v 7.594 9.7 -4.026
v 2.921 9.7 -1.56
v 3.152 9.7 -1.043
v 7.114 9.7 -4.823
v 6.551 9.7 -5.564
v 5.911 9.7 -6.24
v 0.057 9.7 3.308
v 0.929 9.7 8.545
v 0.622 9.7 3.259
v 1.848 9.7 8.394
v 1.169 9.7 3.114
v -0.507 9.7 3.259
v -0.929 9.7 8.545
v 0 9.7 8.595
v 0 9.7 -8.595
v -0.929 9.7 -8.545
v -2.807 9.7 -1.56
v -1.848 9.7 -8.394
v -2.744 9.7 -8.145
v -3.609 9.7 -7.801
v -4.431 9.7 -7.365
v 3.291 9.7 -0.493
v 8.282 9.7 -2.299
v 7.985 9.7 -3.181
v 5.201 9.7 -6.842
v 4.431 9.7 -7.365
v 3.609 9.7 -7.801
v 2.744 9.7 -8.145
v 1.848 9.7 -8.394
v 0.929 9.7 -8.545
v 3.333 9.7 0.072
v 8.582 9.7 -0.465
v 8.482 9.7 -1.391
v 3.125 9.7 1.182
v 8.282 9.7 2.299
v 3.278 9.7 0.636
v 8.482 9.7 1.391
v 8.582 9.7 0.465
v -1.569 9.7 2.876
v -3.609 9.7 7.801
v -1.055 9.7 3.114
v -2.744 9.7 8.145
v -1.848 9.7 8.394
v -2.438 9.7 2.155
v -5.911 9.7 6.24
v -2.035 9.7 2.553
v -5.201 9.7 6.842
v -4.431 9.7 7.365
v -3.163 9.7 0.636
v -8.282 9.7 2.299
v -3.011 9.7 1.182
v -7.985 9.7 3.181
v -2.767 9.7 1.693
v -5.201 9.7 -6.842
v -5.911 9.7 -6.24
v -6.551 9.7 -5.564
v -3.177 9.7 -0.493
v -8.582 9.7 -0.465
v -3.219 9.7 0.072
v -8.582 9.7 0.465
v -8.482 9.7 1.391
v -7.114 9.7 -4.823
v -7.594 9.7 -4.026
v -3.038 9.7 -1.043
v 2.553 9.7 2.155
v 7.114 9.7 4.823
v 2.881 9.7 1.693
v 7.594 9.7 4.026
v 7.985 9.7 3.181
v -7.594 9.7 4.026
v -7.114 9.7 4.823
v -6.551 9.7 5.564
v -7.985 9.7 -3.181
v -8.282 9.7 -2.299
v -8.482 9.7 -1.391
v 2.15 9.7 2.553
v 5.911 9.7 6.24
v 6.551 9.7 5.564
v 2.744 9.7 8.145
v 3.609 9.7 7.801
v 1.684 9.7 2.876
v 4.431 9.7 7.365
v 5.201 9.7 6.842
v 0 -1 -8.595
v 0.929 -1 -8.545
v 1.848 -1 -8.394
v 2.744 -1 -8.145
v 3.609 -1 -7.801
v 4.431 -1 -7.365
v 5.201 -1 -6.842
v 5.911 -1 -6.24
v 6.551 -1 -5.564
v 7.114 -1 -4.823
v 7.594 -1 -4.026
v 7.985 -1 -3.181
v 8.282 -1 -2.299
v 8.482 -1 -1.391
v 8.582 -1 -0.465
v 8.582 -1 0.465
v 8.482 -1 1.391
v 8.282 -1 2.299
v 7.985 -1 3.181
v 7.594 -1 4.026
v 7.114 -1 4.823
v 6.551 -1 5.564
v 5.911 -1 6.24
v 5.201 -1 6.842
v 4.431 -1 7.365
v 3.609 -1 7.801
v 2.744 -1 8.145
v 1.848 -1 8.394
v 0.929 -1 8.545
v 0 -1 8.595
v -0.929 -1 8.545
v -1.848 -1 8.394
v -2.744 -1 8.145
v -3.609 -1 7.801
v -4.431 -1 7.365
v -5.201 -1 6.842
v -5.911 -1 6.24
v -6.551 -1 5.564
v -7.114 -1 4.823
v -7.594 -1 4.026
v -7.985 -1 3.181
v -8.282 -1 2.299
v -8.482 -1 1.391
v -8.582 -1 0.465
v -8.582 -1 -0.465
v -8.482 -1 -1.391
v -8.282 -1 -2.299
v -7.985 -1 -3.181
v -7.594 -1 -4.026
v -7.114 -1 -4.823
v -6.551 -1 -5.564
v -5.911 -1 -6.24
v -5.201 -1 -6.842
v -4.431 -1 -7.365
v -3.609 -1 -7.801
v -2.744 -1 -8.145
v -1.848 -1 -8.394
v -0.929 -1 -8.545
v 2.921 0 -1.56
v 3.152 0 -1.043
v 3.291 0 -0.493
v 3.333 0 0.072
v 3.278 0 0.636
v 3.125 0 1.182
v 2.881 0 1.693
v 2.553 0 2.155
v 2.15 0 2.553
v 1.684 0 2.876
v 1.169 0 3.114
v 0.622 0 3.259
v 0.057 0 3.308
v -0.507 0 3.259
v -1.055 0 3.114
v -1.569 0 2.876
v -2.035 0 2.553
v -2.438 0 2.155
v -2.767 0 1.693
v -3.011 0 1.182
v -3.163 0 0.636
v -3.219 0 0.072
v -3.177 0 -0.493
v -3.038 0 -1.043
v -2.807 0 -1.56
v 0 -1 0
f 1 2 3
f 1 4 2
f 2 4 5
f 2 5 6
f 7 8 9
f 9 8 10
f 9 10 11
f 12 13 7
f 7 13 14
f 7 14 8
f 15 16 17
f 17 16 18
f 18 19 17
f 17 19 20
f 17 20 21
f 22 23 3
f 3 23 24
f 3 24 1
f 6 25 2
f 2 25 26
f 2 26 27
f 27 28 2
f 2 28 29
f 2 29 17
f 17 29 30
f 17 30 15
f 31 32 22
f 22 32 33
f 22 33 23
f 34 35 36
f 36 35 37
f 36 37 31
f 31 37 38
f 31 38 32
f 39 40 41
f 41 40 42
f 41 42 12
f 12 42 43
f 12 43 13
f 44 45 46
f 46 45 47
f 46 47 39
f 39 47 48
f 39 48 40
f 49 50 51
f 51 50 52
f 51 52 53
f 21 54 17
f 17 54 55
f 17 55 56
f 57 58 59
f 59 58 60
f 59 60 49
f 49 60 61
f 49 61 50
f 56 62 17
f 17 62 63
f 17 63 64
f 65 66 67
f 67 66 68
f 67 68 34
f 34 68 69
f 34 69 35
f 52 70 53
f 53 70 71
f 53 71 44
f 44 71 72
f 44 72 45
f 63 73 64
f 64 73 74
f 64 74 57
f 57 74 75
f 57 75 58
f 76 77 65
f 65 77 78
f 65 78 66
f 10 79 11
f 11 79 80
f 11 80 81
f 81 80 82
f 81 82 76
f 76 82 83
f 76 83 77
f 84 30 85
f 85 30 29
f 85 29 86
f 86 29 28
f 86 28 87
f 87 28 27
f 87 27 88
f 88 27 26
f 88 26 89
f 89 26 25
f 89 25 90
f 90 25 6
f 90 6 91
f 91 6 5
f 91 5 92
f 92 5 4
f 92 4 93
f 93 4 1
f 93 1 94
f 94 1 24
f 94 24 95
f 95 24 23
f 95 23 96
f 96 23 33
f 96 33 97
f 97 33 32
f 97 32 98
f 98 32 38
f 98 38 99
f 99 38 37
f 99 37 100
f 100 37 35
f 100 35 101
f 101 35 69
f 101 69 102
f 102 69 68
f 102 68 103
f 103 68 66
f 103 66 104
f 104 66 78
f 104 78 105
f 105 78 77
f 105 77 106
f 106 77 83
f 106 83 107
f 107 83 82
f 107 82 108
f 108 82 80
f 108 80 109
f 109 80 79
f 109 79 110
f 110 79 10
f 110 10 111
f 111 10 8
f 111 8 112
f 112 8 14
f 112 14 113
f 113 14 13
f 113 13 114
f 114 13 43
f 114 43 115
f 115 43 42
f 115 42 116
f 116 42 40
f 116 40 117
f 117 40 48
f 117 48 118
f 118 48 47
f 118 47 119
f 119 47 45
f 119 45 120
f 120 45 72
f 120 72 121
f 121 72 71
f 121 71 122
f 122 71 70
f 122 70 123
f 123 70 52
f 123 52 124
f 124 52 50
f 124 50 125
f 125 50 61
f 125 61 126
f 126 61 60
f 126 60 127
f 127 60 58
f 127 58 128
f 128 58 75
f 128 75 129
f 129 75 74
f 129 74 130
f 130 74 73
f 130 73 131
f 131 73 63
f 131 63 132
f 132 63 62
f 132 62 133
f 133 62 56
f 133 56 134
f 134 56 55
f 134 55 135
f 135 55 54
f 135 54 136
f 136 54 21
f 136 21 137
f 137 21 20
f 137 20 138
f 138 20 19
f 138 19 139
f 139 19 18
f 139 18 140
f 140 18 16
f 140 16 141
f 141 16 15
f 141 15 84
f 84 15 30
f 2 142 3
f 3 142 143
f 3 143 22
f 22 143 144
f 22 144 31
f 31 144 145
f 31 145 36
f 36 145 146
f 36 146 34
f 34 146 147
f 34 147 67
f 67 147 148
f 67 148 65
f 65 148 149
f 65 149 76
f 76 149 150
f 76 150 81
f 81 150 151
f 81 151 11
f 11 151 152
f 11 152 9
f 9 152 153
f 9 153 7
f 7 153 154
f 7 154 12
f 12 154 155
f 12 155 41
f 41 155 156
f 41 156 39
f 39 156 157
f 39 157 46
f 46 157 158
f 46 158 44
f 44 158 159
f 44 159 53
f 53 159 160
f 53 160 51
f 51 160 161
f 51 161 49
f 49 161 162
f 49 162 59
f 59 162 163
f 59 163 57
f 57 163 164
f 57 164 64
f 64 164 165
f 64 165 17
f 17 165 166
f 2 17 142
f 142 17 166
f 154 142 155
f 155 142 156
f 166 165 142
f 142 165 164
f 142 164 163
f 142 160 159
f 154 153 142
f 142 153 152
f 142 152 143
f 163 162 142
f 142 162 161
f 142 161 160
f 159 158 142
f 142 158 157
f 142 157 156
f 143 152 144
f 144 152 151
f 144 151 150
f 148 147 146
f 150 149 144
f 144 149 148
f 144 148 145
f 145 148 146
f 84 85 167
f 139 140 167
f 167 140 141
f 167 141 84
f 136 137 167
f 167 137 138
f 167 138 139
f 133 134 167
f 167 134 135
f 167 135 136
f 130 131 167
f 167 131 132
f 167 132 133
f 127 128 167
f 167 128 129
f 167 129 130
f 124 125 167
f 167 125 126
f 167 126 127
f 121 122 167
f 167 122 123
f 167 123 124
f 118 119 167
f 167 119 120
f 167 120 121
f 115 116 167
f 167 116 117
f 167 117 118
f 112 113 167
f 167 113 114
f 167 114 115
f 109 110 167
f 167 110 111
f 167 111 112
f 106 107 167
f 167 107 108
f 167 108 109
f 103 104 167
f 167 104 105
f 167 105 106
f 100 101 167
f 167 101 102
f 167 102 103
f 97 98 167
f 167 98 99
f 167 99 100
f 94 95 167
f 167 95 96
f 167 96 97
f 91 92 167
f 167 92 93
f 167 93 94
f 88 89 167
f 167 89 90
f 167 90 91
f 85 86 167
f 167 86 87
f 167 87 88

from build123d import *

# Parameters (mm, degrees)
SKETCH1_R           = 8.595
BOSS_EXTRUDE1_DEPTH = 9.7
BOSS_EXTRUDE3_START = 1
SKETCH2_R           = 8.595
BOSS_EXTRUDE3_DEPTH = 1


with BuildPart() as part:
    # Sketch1 → Boss-Extrude1 (new body)
    with BuildSketch(Plane(origin=(0, 0, 0), x_dir=(1, 0, 0), z_dir=(0, 1, 0))):
        with Locations(Location((0, 0, 0), (0, 0, 270))):
            Circle(SKETCH1_R)
        with BuildLine():
            Line((2.921067116, 1.559875967), (-2.806515464, 1.559875967))
            ThreePointArc((-2.806515464, 1.559875967), (0.057275826, -3.308241049), (2.921067116, 1.559875967))
        make_face(mode=Mode.SUBTRACT)
    extrude(amount=BOSS_EXTRUDE1_DEPTH)

    # Sketch2 → Boss-Extrude3 (add)
    with BuildSketch(Plane.XZ.offset(BOSS_EXTRUDE3_START)):
        with Locations(Location((0, 0, 0), (0, 0, 270))):
            Circle(SKETCH2_R)
    extrude(amount=-BOSS_EXTRUDE3_DEPTH)


solid = part.part
